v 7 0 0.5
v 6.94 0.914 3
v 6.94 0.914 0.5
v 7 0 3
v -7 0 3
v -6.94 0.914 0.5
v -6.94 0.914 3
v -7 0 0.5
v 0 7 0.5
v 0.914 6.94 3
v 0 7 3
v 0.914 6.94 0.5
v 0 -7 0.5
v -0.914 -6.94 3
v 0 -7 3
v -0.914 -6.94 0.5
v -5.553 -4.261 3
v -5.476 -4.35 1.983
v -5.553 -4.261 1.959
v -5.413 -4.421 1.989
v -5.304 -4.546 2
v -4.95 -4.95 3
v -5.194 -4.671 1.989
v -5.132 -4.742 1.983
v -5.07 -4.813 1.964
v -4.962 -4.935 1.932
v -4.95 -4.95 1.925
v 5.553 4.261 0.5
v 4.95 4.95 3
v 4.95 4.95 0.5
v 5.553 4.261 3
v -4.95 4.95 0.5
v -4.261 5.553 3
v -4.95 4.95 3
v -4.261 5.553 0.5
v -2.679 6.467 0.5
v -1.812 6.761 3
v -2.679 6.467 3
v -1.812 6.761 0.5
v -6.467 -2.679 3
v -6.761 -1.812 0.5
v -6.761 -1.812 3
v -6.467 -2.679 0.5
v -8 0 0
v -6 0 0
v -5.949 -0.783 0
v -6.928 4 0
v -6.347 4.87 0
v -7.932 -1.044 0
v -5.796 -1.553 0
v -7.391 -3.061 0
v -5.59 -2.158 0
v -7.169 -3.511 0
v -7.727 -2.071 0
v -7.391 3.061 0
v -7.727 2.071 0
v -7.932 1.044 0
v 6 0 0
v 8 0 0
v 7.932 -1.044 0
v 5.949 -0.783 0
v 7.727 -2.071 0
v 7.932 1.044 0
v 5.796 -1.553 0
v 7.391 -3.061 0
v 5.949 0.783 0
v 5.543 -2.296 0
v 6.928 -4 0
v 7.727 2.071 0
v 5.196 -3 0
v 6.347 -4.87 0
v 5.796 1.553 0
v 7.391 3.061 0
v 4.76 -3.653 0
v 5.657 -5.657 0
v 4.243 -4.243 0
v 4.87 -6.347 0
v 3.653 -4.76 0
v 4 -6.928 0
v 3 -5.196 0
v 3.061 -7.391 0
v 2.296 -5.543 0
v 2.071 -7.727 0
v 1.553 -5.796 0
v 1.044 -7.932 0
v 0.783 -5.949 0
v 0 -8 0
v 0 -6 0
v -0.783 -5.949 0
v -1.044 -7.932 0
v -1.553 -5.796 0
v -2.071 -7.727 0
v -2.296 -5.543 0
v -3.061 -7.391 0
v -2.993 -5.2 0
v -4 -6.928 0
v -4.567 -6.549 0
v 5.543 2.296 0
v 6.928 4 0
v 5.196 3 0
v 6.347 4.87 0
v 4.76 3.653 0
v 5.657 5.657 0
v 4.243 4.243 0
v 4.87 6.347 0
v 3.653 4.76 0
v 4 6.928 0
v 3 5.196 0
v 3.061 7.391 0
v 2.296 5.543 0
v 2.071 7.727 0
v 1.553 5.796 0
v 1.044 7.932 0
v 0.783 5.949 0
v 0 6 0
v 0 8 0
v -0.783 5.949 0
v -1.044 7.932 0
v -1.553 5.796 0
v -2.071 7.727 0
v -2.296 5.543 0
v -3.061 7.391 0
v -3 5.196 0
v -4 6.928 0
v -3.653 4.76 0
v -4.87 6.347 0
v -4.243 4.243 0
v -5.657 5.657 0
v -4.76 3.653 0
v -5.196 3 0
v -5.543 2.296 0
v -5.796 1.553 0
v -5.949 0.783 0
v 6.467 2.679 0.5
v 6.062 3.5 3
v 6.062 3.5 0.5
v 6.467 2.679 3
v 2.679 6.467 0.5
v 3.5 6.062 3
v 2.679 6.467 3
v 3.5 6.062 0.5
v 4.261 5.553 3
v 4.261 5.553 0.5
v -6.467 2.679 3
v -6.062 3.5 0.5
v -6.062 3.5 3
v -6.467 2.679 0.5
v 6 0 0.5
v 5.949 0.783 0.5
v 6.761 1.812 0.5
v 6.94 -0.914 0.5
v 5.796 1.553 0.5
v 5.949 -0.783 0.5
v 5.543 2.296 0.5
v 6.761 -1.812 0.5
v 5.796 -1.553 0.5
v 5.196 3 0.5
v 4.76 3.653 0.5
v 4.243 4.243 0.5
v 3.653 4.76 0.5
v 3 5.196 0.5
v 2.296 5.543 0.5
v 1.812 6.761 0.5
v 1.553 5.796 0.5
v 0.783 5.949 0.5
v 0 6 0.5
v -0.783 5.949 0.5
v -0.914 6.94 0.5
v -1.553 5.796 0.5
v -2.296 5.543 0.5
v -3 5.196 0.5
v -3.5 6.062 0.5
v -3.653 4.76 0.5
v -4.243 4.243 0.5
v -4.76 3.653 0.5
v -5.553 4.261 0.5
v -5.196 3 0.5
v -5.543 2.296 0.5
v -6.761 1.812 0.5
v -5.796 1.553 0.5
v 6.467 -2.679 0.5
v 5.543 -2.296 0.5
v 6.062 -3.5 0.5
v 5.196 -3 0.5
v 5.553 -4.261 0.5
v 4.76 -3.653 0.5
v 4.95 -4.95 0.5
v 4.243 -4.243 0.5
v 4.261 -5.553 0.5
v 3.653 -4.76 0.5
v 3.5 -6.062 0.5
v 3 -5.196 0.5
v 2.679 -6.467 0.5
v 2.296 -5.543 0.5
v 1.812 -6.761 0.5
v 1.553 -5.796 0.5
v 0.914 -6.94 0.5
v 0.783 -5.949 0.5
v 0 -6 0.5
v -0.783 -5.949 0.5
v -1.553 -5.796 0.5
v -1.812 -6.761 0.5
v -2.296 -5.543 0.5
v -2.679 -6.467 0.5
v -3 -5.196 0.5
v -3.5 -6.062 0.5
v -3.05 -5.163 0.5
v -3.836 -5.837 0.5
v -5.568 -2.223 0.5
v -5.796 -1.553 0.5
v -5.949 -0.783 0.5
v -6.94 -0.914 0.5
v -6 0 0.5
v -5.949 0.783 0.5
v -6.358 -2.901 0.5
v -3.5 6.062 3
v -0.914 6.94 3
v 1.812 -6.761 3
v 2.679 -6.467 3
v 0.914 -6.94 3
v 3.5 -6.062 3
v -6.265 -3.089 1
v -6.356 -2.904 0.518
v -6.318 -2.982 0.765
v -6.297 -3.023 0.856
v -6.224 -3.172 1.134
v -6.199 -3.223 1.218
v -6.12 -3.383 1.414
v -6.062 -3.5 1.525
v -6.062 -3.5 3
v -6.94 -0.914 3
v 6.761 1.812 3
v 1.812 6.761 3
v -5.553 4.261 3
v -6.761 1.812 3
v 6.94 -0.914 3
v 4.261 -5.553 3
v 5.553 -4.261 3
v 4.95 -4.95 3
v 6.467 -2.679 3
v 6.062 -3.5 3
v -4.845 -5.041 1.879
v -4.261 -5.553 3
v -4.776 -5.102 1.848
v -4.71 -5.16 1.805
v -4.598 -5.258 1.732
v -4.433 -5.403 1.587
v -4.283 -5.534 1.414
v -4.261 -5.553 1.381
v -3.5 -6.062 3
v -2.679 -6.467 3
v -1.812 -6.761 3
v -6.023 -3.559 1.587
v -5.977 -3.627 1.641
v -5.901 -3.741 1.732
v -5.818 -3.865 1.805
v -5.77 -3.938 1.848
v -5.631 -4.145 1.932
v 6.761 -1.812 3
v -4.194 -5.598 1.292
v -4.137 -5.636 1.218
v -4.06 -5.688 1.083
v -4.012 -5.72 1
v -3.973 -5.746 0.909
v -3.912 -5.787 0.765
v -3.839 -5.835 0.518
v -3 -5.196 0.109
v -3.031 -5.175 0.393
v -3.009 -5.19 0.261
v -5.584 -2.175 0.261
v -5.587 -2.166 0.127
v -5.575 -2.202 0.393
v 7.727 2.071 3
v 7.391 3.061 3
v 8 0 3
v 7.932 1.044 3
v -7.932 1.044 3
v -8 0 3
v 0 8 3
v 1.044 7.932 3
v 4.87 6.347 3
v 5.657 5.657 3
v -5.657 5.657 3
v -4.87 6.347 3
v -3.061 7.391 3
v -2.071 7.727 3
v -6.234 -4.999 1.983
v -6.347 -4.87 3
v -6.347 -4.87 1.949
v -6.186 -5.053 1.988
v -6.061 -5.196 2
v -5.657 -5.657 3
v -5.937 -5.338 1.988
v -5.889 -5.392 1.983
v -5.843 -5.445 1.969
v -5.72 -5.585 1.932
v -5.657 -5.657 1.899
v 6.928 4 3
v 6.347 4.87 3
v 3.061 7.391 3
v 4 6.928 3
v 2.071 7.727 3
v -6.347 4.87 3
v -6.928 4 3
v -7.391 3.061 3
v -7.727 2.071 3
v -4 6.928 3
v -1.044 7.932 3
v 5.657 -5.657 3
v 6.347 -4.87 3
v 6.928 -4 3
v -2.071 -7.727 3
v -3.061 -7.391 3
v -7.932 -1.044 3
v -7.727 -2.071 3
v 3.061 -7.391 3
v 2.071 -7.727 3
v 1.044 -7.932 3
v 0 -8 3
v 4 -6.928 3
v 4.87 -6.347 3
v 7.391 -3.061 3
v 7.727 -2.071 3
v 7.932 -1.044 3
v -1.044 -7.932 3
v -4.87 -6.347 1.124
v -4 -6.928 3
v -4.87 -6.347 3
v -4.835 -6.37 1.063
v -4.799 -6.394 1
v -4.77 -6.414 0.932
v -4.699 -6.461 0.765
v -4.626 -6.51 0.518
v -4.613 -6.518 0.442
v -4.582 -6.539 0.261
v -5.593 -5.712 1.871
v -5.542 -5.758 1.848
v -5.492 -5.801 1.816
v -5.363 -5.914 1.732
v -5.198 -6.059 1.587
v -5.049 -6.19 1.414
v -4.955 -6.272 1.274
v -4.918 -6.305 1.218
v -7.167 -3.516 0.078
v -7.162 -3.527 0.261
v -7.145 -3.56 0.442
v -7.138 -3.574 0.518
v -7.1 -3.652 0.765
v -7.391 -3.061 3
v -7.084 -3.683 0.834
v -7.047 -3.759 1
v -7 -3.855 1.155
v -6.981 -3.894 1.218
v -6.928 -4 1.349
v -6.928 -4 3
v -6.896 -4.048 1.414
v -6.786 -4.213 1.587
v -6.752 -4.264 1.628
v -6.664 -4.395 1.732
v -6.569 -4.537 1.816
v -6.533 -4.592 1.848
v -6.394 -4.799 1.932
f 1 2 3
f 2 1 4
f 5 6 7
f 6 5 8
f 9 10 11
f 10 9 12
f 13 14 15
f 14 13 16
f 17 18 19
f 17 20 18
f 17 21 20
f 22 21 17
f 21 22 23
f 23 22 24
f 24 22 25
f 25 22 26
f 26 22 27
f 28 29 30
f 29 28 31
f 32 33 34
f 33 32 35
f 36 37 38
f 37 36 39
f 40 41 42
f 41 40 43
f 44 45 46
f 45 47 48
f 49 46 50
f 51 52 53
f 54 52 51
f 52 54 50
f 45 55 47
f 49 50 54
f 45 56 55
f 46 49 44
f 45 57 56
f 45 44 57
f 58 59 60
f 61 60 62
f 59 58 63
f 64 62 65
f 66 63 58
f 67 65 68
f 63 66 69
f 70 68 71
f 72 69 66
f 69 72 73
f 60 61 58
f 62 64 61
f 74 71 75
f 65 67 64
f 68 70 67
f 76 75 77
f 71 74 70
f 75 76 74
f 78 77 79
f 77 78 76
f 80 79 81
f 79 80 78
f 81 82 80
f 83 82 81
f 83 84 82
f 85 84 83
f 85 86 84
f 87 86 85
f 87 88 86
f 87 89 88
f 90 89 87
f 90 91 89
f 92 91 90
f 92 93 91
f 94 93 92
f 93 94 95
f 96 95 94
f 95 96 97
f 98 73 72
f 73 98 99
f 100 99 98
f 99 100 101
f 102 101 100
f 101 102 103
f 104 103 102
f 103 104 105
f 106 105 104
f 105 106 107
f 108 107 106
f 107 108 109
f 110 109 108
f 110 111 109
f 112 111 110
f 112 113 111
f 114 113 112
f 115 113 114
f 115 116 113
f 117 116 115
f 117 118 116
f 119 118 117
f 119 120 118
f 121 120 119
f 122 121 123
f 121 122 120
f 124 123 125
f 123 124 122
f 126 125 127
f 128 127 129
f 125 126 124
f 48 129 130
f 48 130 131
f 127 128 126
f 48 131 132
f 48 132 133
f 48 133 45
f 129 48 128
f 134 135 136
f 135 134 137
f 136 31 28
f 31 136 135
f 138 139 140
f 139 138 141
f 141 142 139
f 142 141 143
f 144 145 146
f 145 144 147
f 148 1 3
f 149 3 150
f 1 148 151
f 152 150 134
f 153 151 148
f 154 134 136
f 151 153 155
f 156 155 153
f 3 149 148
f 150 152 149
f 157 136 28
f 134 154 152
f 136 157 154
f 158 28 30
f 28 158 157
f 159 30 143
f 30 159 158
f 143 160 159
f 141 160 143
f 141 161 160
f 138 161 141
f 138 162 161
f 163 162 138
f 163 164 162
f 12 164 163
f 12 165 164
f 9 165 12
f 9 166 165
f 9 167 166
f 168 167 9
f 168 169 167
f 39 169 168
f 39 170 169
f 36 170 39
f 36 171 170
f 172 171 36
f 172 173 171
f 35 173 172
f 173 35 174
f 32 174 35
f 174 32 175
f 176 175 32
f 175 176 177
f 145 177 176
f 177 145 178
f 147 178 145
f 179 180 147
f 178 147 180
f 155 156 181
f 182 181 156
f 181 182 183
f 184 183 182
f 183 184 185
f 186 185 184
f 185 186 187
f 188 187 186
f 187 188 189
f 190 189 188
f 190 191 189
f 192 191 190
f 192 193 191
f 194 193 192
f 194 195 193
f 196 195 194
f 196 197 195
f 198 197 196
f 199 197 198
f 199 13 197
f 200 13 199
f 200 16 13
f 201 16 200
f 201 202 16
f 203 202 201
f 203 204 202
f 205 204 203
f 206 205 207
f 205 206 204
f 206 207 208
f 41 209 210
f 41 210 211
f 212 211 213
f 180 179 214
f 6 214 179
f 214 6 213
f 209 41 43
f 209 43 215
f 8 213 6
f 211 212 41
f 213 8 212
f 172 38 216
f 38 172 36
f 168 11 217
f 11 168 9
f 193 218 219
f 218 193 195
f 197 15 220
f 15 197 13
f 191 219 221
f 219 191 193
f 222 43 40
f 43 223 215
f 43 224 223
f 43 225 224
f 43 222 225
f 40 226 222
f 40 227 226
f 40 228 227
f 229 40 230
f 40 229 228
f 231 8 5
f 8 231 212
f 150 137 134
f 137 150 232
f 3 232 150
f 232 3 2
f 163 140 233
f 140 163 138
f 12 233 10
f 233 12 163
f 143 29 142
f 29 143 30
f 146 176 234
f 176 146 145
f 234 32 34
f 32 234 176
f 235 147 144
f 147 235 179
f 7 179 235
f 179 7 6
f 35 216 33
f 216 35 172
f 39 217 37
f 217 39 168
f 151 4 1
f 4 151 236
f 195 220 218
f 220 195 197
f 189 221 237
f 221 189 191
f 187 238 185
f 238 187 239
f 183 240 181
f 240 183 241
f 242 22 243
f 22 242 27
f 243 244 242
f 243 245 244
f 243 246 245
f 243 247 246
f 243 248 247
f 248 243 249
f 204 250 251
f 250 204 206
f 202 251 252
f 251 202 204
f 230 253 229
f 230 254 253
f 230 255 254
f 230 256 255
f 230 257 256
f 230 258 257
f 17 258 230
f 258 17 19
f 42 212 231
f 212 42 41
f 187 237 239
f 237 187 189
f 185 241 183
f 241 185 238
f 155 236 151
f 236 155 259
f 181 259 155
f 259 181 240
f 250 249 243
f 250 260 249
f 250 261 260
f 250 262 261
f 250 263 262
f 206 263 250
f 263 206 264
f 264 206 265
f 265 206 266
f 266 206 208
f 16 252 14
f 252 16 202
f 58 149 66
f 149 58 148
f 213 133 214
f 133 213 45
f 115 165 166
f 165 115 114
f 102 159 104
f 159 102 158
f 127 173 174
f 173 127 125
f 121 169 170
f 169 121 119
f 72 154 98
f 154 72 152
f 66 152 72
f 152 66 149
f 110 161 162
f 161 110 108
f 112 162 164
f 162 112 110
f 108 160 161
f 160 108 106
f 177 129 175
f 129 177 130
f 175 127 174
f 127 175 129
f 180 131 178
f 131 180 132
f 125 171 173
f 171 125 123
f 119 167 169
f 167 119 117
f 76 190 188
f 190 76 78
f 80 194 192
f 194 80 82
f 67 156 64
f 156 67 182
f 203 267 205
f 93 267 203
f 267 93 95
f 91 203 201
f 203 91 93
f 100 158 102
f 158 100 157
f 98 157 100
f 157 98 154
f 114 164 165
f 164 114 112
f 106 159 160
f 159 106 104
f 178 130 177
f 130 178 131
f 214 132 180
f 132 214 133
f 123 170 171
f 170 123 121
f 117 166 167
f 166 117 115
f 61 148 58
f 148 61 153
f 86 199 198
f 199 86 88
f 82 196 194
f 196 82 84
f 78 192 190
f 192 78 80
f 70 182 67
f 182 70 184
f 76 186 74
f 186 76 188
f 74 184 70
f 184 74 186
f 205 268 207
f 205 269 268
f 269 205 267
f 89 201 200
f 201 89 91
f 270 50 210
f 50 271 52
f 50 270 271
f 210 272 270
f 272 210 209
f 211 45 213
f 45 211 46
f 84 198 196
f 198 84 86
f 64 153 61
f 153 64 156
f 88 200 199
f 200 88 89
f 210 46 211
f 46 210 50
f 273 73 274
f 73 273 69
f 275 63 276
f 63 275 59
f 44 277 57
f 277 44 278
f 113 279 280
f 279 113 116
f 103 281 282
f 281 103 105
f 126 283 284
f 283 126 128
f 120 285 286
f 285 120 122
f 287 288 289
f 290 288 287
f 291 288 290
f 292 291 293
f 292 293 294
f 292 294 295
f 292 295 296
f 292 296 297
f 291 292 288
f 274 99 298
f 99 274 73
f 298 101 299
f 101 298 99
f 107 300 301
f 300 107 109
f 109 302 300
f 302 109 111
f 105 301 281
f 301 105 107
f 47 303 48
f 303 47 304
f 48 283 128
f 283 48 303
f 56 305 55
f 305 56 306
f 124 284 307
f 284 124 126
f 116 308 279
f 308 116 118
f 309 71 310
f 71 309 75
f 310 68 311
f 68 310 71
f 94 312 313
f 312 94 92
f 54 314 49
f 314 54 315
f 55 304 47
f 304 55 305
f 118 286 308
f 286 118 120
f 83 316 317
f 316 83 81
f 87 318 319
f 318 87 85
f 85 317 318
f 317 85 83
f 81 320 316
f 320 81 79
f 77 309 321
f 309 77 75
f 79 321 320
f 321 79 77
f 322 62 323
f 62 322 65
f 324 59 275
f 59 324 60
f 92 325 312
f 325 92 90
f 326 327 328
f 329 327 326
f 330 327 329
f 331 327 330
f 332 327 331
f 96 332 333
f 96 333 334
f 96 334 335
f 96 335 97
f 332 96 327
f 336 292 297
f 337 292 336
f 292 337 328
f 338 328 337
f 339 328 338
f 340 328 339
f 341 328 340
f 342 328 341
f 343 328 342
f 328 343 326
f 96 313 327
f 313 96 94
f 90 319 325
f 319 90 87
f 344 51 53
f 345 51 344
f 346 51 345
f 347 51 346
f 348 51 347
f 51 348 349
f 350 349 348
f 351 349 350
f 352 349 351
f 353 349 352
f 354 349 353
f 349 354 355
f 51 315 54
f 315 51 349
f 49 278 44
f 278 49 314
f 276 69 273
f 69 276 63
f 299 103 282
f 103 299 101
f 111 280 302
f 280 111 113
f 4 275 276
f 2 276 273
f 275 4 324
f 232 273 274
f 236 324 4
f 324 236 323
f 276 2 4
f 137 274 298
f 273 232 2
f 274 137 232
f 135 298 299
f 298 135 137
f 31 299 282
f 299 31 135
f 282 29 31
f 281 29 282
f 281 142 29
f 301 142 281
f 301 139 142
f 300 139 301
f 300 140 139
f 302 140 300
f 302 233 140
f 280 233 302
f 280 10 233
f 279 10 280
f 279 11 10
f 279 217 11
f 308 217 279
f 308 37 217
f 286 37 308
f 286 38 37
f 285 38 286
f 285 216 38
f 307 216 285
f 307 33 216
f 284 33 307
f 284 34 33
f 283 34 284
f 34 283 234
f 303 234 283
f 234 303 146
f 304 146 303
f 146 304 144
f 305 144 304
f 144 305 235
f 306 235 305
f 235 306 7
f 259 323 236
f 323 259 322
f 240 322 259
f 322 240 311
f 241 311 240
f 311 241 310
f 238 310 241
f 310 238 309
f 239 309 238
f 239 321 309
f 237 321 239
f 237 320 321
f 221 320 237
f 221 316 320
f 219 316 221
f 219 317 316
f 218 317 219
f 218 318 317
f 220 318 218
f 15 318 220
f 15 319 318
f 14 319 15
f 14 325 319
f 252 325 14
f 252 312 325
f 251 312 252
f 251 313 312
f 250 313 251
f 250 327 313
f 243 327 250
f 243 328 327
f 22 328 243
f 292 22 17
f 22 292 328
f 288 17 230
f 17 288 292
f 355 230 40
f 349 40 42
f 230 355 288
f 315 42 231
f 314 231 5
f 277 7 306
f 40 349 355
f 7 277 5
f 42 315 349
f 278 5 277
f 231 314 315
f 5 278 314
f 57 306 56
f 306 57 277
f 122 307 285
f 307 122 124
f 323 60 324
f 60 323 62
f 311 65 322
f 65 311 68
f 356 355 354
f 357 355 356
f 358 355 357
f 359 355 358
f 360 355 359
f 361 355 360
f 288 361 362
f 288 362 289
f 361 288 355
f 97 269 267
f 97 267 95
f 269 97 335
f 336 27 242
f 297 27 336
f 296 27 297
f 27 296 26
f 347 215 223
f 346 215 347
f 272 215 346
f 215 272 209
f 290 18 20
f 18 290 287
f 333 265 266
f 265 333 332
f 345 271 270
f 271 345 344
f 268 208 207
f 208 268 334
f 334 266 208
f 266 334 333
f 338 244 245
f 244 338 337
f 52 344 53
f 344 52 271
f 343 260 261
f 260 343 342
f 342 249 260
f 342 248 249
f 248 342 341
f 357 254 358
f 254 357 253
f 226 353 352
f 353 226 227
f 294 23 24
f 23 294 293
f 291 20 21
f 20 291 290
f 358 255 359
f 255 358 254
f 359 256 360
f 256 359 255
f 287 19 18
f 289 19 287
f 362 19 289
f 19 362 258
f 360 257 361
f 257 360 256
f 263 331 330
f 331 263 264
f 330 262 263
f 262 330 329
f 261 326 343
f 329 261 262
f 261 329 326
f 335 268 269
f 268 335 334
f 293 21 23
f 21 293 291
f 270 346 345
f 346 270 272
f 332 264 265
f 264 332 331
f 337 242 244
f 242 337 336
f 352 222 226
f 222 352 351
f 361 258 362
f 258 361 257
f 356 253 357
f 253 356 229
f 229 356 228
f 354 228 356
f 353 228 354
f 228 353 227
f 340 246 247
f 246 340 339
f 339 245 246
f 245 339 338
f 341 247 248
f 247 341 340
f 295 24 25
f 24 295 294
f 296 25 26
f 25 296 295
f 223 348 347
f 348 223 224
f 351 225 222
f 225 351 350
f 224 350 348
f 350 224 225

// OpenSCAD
// file: ../build_environments.scad
// build_environments.scad: modules to build level sections
//

module pool(diameter=10.0, wall_height=2.0, step_width=3.0, connections=[])
{
    difference() {
        union() {
        difference() {
            cylinder(h=0.5,r1=diameter+step_width,r2=diameter+step_width,$fn=48);
            translate([0,0,-0.1])
                cylinder(h=0.7,r1=diameter,r2=diameter,$fn=48);
        }
        difference() {
            cylinder(h=wall_height,r1=diameter+step_width+1.0,r2=diameter+step_width+1.0,$fn=48);
            translate([0,0,-0.1])
                cylinder(h=wall_height+0.2,r1=diameter+step_width,r2=diameter+step_width,$fn=48);
        }
        }
    
        for (c = connections)
        {
            rotate([0,90,0]) {
                angle = atan2(c[1],c[0]);
                rotate([-angle,0,0]) {
                    cylinder(h=diameter+5.0,r1=c[2],r2=c[2],$fn=48);
                }
            }
        }
    }
}

module straight(length=10.0, width=2.0, dy1=0.0, dy2=0.0, dz=0.0)
{
    dims = [0, 0, 0, 0, 0, (dz/length)];
    matrix = [
        [ 1, dims[0], dims[1], 0 ],
        [ dims[2], 1, dims[4], 0 ],
        [ dims[5], dims[3], 1, 0 ],
        [ 0, 0, 0, 1 ]
    ];
    multmatrix(matrix)
    difference() {
        translate([dy1,0,0])
        union() {
            rotate([0,90,0]) {
                difference() {
                    cylinder(h=(length-dy1-dy2),r1=width+1.0,r2=width+1.0,$fn=24);
                    translate([0,0,-0.1])
                        cylinder(h=(length-dy1-dy2+0.2),r1=width,r2=width,$fn=24);
                }
                difference() {
                    cylinder(h=1.0,r1=width+2.0,r2=width+2.0,$fn=24);
                    translate([0,0,-0.1])
                        cylinder(h=1.2,r1=width,r2=width,$fn=24);
                }
                translate([0,0,(length-dy1-dy2)-1.0]) {
                    difference() {
                        cylinder(h=1.0,r1=width+2.0,r2=width+2.0,$fn=24);
                        translate([0,0,-0.1])
                            cylinder(h=1.2,r1=width,r2=width,$fn=24);
                    }
                }
            }
        }
        translate([0,0,-(2*width+4.0)/2])
            cube([3*length,3*length,2*width+4.0],center=true);
    }
}

module curve(p0=[0,0], center=[0,0], dir=1, angle=0.0, width=2.0)
{
    radius = sqrt((p0[0]-center[0])*(p0[0]-center[0]) + (p0[1]-center[1])*(p0[1]-center[1]));
    if (dir == 0) {
        difference() {
            rotate([0,0,-90])
            difference() {
                rotate_extrude(angle = angle, convexity = 10, $fn=32)
                    translate([radius, 0, 0])
                        circle(r = width+1.0,$fn=24);
                rotate([0,0,-1.0])
                    rotate_extrude(angle = angle+2.0, convexity = 10, $fn=32)
                        translate([radius, 0, 0])
                            circle(r = width,$fn=24);
            }
            translate([0,0,-(2*width+4.0)/2])
                cube([5*radius,5*radius,2*width+4.0],center=true);
        }
    }
    else {
        difference() {
            rotate([0,0,90])
            difference() {
                rotate_extrude(angle = -angle, convexity = 10, $fn=32)
                    translate([radius, 0, 0])
                        circle(r = width+1.0,$fn=24);
                rotate([0,0,1.0])
                    rotate_extrude(angle = -angle-2.0, convexity = 10, $fn=32)
                        translate([radius, 0, 0])
                            circle(r = width,$fn=24);
            }
            translate([0,0,-(2*width+4.0)/2])
                cube([5*radius,5*radius,2*width+4.0],center=true);
        }
    }

}

// test pool
//pool(diameter=12.0000, wall_height=3.0000, step_width=3.0000, connections=[[0.0000,-26.0000,2.0000], [23.6074,0.0000,2.0000]]);

// test straight, slope
//straight(length=26.0000, width=2.0000, dy1=11.8322, dy2=6.7082, dz=0.0000);
//straight(length=29.1549, width=12.0000, dy1=0.0000, dy2=0.0000, dz=-15.0000);

// test curve
//curve(p0=[23.6074, 0.0000], center=[23.6074, 5.0000], dir=0, angle=60.1011, width=2.0000);
//curve(p0=[33.6426, 12.4219], center=[37.9771, 9.9295], dir=1, angle=120.4627, width=2.0000);
// main file
use <../build_environments.scad>;
pool(diameter=6.0000, wall_height=3.0000, step_width=1.0000, connections=[[-14.0000,-12.0000,2.0000]]);
